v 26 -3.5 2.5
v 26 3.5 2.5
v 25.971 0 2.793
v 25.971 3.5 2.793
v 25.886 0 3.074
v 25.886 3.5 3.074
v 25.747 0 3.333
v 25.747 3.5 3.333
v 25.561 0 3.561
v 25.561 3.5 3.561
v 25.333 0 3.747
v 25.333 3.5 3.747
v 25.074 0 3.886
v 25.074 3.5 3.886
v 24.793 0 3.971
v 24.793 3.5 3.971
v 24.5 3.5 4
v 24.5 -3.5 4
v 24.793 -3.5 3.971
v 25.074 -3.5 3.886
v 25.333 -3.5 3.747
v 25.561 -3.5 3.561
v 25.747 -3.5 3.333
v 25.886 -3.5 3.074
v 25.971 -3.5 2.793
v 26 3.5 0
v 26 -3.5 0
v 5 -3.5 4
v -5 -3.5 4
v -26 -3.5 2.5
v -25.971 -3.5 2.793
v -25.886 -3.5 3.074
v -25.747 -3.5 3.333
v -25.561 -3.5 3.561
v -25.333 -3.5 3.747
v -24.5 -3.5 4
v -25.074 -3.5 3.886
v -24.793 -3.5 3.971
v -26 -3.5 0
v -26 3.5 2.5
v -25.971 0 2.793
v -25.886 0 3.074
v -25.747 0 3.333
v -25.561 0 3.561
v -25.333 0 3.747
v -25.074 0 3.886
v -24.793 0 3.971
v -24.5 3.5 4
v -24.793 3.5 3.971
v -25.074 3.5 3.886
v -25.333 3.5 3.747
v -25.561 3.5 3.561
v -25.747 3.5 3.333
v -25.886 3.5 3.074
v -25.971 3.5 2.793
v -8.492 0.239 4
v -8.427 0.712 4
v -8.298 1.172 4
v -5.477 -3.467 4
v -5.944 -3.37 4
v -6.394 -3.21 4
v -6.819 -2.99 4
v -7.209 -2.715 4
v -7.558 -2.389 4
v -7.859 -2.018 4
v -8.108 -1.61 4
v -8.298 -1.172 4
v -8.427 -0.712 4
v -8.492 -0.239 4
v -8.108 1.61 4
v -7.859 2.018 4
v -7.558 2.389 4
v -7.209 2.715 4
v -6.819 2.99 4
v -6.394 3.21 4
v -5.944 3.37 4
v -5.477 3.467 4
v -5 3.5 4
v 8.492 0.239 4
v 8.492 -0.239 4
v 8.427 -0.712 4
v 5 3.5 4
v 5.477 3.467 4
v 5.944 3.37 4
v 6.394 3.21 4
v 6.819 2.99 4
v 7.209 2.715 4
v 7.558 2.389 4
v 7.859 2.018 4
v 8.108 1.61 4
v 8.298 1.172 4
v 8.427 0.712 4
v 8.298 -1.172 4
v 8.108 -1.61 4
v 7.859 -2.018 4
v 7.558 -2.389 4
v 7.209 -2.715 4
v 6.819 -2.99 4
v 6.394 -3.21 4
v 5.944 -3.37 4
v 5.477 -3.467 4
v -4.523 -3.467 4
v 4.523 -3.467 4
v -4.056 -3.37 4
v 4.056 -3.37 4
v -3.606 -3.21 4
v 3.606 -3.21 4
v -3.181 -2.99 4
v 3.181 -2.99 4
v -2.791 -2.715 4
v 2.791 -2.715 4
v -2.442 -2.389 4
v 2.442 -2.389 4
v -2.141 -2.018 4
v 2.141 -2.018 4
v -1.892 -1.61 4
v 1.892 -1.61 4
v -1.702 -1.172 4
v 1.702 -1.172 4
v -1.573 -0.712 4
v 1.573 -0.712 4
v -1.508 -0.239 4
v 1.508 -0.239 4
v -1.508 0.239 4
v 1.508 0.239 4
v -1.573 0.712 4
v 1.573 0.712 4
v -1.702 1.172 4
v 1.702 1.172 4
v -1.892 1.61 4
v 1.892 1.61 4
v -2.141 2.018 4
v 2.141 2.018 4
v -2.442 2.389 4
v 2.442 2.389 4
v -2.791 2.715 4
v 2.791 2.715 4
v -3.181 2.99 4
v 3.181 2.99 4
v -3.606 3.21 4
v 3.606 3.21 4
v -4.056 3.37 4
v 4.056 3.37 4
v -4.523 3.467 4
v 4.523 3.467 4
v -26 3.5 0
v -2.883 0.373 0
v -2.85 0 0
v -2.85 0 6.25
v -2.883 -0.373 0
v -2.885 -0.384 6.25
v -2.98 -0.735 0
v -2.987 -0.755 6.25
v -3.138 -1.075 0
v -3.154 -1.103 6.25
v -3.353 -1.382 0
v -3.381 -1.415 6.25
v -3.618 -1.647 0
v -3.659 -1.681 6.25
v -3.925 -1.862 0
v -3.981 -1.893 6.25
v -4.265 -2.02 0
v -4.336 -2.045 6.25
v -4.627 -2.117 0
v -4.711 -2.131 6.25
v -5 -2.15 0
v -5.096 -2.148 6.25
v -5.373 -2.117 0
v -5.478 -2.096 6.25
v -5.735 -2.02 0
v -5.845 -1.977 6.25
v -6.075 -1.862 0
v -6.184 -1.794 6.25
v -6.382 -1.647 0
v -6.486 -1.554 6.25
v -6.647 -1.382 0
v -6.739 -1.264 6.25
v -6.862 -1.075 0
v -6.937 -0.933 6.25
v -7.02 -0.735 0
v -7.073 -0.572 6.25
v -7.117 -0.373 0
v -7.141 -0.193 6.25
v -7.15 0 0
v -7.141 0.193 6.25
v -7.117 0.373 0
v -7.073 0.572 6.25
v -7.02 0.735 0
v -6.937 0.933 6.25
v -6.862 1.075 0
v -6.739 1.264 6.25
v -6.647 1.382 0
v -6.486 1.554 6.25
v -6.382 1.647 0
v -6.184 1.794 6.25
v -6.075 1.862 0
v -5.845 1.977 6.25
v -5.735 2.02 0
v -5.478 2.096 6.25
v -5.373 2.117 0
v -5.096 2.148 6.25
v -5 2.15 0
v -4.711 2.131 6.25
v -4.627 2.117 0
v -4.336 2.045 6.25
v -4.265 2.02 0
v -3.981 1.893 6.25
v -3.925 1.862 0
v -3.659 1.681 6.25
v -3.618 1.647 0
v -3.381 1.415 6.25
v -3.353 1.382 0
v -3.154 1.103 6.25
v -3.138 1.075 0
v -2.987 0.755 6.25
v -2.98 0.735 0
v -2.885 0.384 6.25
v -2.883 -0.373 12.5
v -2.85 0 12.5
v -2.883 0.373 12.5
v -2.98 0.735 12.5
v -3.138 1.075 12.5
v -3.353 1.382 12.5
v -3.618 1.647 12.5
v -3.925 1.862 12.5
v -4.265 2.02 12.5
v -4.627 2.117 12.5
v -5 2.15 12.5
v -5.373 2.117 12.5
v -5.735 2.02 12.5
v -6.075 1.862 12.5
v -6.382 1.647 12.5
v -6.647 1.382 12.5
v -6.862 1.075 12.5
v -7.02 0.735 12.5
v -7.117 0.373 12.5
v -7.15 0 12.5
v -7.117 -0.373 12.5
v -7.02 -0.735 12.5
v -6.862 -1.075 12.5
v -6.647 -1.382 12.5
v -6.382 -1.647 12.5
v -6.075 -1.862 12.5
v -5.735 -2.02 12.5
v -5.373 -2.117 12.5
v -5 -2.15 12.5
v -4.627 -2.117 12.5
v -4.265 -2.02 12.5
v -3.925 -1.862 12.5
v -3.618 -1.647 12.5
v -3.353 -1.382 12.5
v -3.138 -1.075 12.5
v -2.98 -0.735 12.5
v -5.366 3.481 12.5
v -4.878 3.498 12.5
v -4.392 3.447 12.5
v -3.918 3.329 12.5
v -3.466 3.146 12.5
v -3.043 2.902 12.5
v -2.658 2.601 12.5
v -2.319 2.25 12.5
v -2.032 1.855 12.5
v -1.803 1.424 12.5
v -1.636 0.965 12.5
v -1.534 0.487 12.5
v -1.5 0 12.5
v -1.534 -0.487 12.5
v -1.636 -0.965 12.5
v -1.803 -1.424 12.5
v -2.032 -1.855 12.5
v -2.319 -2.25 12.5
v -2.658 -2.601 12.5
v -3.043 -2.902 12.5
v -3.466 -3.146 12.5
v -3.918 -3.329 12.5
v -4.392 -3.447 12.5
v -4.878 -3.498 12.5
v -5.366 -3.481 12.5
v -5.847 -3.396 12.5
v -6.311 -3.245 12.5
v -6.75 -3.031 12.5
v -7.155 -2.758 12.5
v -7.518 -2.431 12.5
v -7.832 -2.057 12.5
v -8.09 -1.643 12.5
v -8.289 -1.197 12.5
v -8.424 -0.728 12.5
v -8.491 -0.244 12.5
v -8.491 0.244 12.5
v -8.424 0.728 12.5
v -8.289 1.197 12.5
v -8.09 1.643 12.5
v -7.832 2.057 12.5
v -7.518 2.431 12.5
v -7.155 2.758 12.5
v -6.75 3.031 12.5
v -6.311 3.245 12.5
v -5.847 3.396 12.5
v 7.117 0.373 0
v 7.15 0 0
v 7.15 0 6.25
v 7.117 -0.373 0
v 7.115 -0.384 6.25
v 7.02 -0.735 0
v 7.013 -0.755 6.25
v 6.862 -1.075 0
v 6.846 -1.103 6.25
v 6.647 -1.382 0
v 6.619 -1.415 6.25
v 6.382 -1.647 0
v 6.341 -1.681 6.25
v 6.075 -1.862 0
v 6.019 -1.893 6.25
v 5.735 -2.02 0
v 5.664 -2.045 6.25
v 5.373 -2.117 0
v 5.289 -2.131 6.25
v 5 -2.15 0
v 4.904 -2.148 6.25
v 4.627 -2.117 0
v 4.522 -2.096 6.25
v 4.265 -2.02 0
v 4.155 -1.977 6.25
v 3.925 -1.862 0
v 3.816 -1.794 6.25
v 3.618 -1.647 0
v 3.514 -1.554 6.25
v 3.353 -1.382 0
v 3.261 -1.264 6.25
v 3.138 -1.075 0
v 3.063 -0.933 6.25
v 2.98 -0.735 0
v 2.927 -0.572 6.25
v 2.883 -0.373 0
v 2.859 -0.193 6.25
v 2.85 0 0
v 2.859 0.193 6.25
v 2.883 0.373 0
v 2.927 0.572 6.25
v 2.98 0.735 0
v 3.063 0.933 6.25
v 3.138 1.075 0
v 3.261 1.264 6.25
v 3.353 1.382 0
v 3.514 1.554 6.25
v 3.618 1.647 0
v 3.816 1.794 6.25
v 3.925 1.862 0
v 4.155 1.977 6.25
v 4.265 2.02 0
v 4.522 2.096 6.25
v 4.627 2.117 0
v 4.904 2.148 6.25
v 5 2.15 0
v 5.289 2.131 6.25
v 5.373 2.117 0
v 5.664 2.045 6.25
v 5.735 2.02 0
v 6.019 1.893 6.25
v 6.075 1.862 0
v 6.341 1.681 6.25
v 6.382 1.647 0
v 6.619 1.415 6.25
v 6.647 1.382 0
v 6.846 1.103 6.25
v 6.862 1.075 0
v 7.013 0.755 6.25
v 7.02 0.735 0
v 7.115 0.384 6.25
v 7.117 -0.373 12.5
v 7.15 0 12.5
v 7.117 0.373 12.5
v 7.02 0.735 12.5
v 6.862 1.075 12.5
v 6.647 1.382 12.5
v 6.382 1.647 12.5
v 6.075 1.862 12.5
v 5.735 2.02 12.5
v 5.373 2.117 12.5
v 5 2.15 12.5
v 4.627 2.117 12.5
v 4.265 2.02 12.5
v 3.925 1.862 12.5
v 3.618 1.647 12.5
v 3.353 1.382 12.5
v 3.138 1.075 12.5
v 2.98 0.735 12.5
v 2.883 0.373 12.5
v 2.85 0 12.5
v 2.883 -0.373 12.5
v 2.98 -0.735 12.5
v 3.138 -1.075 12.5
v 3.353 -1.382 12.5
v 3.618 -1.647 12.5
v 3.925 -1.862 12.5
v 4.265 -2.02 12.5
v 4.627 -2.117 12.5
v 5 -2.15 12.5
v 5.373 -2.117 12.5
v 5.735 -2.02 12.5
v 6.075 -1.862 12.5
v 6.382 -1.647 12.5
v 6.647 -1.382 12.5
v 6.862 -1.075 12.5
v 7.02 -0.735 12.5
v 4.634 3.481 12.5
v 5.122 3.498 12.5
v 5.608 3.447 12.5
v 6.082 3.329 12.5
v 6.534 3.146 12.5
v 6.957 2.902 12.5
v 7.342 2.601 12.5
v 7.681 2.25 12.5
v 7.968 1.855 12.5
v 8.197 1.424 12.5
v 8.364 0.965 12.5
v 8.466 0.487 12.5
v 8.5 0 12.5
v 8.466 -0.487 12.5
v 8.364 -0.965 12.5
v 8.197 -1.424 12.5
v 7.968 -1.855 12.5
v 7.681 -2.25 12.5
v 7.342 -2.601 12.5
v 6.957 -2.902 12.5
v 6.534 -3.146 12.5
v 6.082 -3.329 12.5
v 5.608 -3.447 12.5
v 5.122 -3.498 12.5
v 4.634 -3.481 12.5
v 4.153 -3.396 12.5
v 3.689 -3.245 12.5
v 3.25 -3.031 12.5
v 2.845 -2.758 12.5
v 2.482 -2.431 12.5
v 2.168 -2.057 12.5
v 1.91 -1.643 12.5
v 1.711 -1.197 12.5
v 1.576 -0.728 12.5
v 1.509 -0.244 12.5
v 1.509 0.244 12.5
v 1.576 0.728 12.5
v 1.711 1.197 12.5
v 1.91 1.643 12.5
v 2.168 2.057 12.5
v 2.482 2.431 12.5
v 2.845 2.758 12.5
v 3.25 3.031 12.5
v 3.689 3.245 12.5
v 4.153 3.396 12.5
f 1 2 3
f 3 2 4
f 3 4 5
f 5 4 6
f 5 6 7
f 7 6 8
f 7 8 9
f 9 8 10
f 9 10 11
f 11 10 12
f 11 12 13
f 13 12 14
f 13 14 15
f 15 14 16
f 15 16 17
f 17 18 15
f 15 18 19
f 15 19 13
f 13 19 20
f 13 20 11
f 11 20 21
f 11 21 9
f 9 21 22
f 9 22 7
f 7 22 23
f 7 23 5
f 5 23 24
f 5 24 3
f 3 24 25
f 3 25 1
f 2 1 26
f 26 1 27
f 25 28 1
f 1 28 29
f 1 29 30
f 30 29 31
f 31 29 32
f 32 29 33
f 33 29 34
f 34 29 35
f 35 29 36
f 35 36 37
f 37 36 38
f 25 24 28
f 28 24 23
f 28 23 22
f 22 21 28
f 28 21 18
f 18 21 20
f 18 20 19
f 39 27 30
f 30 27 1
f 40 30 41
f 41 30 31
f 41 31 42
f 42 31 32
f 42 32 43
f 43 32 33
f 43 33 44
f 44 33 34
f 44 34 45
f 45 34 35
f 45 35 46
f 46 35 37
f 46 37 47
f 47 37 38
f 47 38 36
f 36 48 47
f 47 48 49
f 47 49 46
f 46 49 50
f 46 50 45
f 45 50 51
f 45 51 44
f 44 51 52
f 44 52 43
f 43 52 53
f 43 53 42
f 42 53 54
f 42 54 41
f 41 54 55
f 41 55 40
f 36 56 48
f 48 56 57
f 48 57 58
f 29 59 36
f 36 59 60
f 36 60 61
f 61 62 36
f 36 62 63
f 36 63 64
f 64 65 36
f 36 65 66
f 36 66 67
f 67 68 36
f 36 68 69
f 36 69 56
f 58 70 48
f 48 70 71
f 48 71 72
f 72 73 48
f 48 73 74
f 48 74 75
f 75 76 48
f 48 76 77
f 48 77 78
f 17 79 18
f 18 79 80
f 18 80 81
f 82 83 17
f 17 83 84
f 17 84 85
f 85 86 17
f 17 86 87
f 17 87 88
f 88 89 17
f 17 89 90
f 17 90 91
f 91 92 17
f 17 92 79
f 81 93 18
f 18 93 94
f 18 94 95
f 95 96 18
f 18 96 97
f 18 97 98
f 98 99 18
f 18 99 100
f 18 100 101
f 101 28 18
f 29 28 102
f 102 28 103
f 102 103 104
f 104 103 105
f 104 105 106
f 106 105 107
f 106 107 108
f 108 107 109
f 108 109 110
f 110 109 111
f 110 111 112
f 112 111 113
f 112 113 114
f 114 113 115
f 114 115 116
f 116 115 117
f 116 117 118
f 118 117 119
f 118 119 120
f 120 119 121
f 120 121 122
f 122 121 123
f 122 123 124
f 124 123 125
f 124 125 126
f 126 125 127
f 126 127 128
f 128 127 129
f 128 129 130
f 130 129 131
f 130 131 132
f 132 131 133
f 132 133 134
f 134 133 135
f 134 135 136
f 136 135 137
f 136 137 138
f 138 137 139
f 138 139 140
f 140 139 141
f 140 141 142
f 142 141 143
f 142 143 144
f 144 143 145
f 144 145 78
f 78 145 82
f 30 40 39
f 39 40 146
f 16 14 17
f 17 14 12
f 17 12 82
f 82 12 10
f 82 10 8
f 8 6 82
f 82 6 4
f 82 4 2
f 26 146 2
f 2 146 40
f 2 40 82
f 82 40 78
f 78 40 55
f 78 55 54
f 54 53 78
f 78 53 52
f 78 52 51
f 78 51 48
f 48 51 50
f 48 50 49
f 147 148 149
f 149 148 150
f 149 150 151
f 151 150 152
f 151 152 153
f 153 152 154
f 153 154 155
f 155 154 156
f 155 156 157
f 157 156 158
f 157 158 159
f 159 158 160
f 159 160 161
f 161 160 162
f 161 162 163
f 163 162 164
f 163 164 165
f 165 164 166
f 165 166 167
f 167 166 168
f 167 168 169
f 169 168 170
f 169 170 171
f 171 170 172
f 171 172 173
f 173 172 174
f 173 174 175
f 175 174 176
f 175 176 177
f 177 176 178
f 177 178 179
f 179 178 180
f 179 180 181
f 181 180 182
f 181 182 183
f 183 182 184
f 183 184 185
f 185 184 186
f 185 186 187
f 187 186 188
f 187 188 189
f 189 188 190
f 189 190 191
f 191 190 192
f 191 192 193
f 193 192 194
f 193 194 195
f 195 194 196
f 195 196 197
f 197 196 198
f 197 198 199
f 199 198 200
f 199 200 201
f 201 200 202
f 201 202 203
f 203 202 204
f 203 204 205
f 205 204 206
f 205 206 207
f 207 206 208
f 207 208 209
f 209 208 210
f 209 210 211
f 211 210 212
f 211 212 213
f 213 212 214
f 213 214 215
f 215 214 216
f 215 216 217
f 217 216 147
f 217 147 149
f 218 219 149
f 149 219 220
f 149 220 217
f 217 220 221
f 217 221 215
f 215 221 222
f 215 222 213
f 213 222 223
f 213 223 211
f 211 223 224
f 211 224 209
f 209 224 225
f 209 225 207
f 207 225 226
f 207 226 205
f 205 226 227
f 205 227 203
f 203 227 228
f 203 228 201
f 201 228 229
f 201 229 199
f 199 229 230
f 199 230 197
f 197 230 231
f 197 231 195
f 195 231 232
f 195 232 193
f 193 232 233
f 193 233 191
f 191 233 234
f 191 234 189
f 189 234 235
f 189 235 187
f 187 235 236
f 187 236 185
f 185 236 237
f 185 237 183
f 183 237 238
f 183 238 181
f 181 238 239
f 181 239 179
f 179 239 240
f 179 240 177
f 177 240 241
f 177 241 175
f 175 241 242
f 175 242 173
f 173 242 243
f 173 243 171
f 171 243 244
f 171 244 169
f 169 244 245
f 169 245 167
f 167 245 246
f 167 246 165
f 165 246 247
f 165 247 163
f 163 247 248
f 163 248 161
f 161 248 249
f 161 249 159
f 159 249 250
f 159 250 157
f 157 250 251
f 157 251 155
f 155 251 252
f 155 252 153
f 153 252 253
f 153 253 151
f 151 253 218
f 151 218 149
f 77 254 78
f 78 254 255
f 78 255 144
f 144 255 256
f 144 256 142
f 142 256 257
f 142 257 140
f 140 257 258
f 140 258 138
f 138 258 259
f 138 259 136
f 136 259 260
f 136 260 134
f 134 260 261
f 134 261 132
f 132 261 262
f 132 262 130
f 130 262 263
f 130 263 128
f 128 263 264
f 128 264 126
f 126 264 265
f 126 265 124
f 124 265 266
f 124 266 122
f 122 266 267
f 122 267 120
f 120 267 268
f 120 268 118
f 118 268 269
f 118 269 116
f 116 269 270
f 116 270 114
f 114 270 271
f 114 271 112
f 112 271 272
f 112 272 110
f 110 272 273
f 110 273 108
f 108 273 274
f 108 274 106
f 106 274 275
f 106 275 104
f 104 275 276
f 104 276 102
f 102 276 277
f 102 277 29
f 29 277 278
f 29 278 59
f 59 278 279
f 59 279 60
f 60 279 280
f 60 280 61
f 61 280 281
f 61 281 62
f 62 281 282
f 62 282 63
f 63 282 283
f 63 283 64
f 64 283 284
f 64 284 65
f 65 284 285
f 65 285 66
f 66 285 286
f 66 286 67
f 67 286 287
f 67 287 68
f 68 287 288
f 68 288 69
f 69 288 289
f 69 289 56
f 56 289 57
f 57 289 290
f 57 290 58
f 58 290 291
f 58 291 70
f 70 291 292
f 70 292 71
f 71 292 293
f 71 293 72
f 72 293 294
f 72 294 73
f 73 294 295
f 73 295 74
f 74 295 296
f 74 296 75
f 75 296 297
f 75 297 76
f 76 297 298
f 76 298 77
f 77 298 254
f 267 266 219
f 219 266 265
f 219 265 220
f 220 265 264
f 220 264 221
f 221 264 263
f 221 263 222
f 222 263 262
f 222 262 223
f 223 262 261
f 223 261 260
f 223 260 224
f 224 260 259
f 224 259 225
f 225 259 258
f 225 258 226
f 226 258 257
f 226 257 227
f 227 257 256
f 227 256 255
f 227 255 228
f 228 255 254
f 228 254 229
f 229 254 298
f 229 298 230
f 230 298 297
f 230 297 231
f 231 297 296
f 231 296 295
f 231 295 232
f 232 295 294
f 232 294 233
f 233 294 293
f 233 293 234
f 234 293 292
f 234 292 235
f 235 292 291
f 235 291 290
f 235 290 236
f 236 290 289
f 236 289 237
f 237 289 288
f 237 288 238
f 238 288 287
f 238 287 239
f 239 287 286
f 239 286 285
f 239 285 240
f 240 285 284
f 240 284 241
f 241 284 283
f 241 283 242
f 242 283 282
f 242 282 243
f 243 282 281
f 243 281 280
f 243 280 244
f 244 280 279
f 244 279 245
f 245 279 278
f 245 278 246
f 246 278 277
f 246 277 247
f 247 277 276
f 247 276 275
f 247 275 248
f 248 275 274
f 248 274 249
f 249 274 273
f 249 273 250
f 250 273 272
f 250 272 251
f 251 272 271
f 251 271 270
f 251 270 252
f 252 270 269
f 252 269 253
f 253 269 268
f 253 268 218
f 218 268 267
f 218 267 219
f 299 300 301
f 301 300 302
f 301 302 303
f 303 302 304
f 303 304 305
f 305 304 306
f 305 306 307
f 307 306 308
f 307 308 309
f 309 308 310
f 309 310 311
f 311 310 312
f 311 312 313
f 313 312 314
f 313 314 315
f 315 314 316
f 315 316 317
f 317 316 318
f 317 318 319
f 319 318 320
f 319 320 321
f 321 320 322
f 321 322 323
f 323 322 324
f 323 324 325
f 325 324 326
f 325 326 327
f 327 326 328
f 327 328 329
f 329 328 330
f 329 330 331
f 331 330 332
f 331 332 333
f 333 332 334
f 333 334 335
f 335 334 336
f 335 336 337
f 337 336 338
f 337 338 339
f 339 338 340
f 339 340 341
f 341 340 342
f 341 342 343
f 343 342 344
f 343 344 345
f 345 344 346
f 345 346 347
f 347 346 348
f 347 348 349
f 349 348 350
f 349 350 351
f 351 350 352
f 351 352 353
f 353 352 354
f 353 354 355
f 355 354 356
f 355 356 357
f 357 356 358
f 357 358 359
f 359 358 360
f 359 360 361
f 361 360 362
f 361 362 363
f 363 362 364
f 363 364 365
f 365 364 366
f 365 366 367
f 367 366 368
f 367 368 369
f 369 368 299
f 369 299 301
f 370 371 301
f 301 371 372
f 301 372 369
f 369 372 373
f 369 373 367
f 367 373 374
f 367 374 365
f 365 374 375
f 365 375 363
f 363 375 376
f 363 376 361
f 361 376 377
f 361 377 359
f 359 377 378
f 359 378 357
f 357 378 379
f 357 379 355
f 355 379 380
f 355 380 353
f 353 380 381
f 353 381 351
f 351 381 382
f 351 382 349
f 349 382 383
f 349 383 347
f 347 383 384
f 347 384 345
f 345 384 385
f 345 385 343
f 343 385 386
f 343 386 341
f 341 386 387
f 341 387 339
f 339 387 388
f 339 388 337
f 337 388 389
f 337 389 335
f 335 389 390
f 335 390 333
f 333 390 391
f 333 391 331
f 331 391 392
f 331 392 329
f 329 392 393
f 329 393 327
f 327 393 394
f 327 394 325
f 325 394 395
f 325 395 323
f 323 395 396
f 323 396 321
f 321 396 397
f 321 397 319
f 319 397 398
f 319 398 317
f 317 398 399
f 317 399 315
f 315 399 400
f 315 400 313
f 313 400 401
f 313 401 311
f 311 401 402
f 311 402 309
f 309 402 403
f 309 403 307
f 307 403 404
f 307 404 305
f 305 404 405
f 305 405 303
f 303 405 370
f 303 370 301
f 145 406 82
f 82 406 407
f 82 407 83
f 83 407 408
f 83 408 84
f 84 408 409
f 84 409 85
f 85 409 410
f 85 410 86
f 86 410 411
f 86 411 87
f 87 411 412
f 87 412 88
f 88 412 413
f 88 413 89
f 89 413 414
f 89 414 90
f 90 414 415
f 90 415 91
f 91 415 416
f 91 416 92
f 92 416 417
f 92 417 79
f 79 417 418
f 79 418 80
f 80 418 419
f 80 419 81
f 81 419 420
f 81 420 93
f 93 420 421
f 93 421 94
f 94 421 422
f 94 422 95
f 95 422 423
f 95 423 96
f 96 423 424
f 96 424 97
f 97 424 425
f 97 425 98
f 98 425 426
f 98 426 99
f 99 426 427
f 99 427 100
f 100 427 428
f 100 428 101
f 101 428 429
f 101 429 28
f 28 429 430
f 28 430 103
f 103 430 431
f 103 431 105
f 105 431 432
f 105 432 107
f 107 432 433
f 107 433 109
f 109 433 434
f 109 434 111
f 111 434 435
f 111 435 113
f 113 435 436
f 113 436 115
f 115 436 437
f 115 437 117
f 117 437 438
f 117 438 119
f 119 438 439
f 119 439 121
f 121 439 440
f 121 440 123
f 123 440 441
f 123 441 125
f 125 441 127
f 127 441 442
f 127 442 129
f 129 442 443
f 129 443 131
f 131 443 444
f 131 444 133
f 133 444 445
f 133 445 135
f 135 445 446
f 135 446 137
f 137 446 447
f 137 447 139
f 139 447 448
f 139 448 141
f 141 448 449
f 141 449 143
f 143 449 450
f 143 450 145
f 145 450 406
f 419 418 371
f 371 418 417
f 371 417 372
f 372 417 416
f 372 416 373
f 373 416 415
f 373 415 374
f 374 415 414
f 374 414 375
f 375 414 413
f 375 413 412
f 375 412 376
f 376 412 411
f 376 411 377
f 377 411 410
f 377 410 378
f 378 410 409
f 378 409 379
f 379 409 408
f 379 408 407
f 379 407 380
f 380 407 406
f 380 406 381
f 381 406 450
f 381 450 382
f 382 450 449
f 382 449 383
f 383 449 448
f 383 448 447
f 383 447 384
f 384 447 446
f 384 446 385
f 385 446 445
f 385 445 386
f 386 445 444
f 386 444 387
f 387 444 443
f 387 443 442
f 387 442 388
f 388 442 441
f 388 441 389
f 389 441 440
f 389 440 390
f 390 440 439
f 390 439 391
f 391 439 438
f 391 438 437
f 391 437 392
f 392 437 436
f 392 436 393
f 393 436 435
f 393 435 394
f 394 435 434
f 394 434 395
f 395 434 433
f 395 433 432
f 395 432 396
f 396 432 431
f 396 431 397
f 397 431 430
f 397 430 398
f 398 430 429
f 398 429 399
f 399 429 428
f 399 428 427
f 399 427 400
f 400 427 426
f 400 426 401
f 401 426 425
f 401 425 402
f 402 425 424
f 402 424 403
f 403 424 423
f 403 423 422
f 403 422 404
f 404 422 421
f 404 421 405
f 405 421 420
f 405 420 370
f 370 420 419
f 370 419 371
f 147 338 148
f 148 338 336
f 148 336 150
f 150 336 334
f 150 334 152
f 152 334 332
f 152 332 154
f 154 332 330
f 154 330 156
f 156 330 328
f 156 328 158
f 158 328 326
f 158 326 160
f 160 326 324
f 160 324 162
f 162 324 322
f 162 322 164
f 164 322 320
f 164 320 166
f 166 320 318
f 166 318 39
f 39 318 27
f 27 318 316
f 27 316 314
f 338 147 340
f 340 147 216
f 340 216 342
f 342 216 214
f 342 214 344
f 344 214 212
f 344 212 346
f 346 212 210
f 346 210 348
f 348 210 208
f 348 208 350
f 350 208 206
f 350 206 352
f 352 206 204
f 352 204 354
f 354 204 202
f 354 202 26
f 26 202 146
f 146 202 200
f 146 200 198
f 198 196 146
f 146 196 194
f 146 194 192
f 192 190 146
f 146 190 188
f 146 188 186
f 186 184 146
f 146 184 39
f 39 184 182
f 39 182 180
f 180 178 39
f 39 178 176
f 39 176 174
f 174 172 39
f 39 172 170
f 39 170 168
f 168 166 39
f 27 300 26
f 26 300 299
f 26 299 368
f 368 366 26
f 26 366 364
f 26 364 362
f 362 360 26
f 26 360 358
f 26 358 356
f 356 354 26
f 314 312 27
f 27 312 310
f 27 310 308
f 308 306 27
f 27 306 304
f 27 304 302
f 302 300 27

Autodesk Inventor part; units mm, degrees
ref_plane "YZ Plane" through (0, 0, 0) normal (1, 0, 0) x (0, 1, 0)
ref_plane "XZ Plane" through (0, 0, 0) normal (0, 1, 0) x (-1, 0, 0)
ref_plane "XY Plane" through (0, 0, 0) normal (0, 0, 1) x (1, 0, 0)
sketch "Skizze1" plane through (0, 0, 0) normal (0, 0, 1) x (1, 0, 0)
  circle A0 centre (-5, 0) radius 2.15
  circle A1 centre (-5, 0) radius 3.5
  line L0 (-15.4774, 0) -> (15.4774, 0) construction
  line L1 (0, 6.6843) -> (0, -6.6843) construction
  circle A2 centre (5, 0) radius 2.15
  circle A3 centre (5, 0) radius 3.5
  line L2 (-8.5, 3.5) -> (8.5, 3.5)
  line L3 (8.5, 3.5) -> (8.5, -3.5)
  line L4 (8.5, -3.5) -> (-8.5, -3.5)
  line L5 (-8.5, -3.5) -> (-8.5, 3.5)
  line L6 (26, -3.5) -> (-26, -3.5)
  line L7 (-26, -3.5) -> (-26, 3.5)
  line L8 (-26, 3.5) -> (26, 3.5)
  line L9 (26, 3.5) -> (26, -3.5)
  line L10 (26, -3.5) -> (-26, 3.5) construction
  line L11 (-26, -3.5) -> (26, 3.5) construction
  point P0 (0, 0)
  point P1 (0, 0)
  dimension "d0" = 4.3
  dimension "d1" = 7
  dimension "d2" = 10
  dimension "d7" = 52
extrude "Extrusion1" add sketch "Skizze1" along normal blind 12.5 contours A1 | A3
extrude "Extrusion2" add sketch "Skizze1" along normal blind 4
chamfer "Fase1" [suppressed]
fillet "Rundung1" radius 1.5 2 edges at (-26, 0, 4) (26, 0, 4)
properties part number "6_3D-Druck"
